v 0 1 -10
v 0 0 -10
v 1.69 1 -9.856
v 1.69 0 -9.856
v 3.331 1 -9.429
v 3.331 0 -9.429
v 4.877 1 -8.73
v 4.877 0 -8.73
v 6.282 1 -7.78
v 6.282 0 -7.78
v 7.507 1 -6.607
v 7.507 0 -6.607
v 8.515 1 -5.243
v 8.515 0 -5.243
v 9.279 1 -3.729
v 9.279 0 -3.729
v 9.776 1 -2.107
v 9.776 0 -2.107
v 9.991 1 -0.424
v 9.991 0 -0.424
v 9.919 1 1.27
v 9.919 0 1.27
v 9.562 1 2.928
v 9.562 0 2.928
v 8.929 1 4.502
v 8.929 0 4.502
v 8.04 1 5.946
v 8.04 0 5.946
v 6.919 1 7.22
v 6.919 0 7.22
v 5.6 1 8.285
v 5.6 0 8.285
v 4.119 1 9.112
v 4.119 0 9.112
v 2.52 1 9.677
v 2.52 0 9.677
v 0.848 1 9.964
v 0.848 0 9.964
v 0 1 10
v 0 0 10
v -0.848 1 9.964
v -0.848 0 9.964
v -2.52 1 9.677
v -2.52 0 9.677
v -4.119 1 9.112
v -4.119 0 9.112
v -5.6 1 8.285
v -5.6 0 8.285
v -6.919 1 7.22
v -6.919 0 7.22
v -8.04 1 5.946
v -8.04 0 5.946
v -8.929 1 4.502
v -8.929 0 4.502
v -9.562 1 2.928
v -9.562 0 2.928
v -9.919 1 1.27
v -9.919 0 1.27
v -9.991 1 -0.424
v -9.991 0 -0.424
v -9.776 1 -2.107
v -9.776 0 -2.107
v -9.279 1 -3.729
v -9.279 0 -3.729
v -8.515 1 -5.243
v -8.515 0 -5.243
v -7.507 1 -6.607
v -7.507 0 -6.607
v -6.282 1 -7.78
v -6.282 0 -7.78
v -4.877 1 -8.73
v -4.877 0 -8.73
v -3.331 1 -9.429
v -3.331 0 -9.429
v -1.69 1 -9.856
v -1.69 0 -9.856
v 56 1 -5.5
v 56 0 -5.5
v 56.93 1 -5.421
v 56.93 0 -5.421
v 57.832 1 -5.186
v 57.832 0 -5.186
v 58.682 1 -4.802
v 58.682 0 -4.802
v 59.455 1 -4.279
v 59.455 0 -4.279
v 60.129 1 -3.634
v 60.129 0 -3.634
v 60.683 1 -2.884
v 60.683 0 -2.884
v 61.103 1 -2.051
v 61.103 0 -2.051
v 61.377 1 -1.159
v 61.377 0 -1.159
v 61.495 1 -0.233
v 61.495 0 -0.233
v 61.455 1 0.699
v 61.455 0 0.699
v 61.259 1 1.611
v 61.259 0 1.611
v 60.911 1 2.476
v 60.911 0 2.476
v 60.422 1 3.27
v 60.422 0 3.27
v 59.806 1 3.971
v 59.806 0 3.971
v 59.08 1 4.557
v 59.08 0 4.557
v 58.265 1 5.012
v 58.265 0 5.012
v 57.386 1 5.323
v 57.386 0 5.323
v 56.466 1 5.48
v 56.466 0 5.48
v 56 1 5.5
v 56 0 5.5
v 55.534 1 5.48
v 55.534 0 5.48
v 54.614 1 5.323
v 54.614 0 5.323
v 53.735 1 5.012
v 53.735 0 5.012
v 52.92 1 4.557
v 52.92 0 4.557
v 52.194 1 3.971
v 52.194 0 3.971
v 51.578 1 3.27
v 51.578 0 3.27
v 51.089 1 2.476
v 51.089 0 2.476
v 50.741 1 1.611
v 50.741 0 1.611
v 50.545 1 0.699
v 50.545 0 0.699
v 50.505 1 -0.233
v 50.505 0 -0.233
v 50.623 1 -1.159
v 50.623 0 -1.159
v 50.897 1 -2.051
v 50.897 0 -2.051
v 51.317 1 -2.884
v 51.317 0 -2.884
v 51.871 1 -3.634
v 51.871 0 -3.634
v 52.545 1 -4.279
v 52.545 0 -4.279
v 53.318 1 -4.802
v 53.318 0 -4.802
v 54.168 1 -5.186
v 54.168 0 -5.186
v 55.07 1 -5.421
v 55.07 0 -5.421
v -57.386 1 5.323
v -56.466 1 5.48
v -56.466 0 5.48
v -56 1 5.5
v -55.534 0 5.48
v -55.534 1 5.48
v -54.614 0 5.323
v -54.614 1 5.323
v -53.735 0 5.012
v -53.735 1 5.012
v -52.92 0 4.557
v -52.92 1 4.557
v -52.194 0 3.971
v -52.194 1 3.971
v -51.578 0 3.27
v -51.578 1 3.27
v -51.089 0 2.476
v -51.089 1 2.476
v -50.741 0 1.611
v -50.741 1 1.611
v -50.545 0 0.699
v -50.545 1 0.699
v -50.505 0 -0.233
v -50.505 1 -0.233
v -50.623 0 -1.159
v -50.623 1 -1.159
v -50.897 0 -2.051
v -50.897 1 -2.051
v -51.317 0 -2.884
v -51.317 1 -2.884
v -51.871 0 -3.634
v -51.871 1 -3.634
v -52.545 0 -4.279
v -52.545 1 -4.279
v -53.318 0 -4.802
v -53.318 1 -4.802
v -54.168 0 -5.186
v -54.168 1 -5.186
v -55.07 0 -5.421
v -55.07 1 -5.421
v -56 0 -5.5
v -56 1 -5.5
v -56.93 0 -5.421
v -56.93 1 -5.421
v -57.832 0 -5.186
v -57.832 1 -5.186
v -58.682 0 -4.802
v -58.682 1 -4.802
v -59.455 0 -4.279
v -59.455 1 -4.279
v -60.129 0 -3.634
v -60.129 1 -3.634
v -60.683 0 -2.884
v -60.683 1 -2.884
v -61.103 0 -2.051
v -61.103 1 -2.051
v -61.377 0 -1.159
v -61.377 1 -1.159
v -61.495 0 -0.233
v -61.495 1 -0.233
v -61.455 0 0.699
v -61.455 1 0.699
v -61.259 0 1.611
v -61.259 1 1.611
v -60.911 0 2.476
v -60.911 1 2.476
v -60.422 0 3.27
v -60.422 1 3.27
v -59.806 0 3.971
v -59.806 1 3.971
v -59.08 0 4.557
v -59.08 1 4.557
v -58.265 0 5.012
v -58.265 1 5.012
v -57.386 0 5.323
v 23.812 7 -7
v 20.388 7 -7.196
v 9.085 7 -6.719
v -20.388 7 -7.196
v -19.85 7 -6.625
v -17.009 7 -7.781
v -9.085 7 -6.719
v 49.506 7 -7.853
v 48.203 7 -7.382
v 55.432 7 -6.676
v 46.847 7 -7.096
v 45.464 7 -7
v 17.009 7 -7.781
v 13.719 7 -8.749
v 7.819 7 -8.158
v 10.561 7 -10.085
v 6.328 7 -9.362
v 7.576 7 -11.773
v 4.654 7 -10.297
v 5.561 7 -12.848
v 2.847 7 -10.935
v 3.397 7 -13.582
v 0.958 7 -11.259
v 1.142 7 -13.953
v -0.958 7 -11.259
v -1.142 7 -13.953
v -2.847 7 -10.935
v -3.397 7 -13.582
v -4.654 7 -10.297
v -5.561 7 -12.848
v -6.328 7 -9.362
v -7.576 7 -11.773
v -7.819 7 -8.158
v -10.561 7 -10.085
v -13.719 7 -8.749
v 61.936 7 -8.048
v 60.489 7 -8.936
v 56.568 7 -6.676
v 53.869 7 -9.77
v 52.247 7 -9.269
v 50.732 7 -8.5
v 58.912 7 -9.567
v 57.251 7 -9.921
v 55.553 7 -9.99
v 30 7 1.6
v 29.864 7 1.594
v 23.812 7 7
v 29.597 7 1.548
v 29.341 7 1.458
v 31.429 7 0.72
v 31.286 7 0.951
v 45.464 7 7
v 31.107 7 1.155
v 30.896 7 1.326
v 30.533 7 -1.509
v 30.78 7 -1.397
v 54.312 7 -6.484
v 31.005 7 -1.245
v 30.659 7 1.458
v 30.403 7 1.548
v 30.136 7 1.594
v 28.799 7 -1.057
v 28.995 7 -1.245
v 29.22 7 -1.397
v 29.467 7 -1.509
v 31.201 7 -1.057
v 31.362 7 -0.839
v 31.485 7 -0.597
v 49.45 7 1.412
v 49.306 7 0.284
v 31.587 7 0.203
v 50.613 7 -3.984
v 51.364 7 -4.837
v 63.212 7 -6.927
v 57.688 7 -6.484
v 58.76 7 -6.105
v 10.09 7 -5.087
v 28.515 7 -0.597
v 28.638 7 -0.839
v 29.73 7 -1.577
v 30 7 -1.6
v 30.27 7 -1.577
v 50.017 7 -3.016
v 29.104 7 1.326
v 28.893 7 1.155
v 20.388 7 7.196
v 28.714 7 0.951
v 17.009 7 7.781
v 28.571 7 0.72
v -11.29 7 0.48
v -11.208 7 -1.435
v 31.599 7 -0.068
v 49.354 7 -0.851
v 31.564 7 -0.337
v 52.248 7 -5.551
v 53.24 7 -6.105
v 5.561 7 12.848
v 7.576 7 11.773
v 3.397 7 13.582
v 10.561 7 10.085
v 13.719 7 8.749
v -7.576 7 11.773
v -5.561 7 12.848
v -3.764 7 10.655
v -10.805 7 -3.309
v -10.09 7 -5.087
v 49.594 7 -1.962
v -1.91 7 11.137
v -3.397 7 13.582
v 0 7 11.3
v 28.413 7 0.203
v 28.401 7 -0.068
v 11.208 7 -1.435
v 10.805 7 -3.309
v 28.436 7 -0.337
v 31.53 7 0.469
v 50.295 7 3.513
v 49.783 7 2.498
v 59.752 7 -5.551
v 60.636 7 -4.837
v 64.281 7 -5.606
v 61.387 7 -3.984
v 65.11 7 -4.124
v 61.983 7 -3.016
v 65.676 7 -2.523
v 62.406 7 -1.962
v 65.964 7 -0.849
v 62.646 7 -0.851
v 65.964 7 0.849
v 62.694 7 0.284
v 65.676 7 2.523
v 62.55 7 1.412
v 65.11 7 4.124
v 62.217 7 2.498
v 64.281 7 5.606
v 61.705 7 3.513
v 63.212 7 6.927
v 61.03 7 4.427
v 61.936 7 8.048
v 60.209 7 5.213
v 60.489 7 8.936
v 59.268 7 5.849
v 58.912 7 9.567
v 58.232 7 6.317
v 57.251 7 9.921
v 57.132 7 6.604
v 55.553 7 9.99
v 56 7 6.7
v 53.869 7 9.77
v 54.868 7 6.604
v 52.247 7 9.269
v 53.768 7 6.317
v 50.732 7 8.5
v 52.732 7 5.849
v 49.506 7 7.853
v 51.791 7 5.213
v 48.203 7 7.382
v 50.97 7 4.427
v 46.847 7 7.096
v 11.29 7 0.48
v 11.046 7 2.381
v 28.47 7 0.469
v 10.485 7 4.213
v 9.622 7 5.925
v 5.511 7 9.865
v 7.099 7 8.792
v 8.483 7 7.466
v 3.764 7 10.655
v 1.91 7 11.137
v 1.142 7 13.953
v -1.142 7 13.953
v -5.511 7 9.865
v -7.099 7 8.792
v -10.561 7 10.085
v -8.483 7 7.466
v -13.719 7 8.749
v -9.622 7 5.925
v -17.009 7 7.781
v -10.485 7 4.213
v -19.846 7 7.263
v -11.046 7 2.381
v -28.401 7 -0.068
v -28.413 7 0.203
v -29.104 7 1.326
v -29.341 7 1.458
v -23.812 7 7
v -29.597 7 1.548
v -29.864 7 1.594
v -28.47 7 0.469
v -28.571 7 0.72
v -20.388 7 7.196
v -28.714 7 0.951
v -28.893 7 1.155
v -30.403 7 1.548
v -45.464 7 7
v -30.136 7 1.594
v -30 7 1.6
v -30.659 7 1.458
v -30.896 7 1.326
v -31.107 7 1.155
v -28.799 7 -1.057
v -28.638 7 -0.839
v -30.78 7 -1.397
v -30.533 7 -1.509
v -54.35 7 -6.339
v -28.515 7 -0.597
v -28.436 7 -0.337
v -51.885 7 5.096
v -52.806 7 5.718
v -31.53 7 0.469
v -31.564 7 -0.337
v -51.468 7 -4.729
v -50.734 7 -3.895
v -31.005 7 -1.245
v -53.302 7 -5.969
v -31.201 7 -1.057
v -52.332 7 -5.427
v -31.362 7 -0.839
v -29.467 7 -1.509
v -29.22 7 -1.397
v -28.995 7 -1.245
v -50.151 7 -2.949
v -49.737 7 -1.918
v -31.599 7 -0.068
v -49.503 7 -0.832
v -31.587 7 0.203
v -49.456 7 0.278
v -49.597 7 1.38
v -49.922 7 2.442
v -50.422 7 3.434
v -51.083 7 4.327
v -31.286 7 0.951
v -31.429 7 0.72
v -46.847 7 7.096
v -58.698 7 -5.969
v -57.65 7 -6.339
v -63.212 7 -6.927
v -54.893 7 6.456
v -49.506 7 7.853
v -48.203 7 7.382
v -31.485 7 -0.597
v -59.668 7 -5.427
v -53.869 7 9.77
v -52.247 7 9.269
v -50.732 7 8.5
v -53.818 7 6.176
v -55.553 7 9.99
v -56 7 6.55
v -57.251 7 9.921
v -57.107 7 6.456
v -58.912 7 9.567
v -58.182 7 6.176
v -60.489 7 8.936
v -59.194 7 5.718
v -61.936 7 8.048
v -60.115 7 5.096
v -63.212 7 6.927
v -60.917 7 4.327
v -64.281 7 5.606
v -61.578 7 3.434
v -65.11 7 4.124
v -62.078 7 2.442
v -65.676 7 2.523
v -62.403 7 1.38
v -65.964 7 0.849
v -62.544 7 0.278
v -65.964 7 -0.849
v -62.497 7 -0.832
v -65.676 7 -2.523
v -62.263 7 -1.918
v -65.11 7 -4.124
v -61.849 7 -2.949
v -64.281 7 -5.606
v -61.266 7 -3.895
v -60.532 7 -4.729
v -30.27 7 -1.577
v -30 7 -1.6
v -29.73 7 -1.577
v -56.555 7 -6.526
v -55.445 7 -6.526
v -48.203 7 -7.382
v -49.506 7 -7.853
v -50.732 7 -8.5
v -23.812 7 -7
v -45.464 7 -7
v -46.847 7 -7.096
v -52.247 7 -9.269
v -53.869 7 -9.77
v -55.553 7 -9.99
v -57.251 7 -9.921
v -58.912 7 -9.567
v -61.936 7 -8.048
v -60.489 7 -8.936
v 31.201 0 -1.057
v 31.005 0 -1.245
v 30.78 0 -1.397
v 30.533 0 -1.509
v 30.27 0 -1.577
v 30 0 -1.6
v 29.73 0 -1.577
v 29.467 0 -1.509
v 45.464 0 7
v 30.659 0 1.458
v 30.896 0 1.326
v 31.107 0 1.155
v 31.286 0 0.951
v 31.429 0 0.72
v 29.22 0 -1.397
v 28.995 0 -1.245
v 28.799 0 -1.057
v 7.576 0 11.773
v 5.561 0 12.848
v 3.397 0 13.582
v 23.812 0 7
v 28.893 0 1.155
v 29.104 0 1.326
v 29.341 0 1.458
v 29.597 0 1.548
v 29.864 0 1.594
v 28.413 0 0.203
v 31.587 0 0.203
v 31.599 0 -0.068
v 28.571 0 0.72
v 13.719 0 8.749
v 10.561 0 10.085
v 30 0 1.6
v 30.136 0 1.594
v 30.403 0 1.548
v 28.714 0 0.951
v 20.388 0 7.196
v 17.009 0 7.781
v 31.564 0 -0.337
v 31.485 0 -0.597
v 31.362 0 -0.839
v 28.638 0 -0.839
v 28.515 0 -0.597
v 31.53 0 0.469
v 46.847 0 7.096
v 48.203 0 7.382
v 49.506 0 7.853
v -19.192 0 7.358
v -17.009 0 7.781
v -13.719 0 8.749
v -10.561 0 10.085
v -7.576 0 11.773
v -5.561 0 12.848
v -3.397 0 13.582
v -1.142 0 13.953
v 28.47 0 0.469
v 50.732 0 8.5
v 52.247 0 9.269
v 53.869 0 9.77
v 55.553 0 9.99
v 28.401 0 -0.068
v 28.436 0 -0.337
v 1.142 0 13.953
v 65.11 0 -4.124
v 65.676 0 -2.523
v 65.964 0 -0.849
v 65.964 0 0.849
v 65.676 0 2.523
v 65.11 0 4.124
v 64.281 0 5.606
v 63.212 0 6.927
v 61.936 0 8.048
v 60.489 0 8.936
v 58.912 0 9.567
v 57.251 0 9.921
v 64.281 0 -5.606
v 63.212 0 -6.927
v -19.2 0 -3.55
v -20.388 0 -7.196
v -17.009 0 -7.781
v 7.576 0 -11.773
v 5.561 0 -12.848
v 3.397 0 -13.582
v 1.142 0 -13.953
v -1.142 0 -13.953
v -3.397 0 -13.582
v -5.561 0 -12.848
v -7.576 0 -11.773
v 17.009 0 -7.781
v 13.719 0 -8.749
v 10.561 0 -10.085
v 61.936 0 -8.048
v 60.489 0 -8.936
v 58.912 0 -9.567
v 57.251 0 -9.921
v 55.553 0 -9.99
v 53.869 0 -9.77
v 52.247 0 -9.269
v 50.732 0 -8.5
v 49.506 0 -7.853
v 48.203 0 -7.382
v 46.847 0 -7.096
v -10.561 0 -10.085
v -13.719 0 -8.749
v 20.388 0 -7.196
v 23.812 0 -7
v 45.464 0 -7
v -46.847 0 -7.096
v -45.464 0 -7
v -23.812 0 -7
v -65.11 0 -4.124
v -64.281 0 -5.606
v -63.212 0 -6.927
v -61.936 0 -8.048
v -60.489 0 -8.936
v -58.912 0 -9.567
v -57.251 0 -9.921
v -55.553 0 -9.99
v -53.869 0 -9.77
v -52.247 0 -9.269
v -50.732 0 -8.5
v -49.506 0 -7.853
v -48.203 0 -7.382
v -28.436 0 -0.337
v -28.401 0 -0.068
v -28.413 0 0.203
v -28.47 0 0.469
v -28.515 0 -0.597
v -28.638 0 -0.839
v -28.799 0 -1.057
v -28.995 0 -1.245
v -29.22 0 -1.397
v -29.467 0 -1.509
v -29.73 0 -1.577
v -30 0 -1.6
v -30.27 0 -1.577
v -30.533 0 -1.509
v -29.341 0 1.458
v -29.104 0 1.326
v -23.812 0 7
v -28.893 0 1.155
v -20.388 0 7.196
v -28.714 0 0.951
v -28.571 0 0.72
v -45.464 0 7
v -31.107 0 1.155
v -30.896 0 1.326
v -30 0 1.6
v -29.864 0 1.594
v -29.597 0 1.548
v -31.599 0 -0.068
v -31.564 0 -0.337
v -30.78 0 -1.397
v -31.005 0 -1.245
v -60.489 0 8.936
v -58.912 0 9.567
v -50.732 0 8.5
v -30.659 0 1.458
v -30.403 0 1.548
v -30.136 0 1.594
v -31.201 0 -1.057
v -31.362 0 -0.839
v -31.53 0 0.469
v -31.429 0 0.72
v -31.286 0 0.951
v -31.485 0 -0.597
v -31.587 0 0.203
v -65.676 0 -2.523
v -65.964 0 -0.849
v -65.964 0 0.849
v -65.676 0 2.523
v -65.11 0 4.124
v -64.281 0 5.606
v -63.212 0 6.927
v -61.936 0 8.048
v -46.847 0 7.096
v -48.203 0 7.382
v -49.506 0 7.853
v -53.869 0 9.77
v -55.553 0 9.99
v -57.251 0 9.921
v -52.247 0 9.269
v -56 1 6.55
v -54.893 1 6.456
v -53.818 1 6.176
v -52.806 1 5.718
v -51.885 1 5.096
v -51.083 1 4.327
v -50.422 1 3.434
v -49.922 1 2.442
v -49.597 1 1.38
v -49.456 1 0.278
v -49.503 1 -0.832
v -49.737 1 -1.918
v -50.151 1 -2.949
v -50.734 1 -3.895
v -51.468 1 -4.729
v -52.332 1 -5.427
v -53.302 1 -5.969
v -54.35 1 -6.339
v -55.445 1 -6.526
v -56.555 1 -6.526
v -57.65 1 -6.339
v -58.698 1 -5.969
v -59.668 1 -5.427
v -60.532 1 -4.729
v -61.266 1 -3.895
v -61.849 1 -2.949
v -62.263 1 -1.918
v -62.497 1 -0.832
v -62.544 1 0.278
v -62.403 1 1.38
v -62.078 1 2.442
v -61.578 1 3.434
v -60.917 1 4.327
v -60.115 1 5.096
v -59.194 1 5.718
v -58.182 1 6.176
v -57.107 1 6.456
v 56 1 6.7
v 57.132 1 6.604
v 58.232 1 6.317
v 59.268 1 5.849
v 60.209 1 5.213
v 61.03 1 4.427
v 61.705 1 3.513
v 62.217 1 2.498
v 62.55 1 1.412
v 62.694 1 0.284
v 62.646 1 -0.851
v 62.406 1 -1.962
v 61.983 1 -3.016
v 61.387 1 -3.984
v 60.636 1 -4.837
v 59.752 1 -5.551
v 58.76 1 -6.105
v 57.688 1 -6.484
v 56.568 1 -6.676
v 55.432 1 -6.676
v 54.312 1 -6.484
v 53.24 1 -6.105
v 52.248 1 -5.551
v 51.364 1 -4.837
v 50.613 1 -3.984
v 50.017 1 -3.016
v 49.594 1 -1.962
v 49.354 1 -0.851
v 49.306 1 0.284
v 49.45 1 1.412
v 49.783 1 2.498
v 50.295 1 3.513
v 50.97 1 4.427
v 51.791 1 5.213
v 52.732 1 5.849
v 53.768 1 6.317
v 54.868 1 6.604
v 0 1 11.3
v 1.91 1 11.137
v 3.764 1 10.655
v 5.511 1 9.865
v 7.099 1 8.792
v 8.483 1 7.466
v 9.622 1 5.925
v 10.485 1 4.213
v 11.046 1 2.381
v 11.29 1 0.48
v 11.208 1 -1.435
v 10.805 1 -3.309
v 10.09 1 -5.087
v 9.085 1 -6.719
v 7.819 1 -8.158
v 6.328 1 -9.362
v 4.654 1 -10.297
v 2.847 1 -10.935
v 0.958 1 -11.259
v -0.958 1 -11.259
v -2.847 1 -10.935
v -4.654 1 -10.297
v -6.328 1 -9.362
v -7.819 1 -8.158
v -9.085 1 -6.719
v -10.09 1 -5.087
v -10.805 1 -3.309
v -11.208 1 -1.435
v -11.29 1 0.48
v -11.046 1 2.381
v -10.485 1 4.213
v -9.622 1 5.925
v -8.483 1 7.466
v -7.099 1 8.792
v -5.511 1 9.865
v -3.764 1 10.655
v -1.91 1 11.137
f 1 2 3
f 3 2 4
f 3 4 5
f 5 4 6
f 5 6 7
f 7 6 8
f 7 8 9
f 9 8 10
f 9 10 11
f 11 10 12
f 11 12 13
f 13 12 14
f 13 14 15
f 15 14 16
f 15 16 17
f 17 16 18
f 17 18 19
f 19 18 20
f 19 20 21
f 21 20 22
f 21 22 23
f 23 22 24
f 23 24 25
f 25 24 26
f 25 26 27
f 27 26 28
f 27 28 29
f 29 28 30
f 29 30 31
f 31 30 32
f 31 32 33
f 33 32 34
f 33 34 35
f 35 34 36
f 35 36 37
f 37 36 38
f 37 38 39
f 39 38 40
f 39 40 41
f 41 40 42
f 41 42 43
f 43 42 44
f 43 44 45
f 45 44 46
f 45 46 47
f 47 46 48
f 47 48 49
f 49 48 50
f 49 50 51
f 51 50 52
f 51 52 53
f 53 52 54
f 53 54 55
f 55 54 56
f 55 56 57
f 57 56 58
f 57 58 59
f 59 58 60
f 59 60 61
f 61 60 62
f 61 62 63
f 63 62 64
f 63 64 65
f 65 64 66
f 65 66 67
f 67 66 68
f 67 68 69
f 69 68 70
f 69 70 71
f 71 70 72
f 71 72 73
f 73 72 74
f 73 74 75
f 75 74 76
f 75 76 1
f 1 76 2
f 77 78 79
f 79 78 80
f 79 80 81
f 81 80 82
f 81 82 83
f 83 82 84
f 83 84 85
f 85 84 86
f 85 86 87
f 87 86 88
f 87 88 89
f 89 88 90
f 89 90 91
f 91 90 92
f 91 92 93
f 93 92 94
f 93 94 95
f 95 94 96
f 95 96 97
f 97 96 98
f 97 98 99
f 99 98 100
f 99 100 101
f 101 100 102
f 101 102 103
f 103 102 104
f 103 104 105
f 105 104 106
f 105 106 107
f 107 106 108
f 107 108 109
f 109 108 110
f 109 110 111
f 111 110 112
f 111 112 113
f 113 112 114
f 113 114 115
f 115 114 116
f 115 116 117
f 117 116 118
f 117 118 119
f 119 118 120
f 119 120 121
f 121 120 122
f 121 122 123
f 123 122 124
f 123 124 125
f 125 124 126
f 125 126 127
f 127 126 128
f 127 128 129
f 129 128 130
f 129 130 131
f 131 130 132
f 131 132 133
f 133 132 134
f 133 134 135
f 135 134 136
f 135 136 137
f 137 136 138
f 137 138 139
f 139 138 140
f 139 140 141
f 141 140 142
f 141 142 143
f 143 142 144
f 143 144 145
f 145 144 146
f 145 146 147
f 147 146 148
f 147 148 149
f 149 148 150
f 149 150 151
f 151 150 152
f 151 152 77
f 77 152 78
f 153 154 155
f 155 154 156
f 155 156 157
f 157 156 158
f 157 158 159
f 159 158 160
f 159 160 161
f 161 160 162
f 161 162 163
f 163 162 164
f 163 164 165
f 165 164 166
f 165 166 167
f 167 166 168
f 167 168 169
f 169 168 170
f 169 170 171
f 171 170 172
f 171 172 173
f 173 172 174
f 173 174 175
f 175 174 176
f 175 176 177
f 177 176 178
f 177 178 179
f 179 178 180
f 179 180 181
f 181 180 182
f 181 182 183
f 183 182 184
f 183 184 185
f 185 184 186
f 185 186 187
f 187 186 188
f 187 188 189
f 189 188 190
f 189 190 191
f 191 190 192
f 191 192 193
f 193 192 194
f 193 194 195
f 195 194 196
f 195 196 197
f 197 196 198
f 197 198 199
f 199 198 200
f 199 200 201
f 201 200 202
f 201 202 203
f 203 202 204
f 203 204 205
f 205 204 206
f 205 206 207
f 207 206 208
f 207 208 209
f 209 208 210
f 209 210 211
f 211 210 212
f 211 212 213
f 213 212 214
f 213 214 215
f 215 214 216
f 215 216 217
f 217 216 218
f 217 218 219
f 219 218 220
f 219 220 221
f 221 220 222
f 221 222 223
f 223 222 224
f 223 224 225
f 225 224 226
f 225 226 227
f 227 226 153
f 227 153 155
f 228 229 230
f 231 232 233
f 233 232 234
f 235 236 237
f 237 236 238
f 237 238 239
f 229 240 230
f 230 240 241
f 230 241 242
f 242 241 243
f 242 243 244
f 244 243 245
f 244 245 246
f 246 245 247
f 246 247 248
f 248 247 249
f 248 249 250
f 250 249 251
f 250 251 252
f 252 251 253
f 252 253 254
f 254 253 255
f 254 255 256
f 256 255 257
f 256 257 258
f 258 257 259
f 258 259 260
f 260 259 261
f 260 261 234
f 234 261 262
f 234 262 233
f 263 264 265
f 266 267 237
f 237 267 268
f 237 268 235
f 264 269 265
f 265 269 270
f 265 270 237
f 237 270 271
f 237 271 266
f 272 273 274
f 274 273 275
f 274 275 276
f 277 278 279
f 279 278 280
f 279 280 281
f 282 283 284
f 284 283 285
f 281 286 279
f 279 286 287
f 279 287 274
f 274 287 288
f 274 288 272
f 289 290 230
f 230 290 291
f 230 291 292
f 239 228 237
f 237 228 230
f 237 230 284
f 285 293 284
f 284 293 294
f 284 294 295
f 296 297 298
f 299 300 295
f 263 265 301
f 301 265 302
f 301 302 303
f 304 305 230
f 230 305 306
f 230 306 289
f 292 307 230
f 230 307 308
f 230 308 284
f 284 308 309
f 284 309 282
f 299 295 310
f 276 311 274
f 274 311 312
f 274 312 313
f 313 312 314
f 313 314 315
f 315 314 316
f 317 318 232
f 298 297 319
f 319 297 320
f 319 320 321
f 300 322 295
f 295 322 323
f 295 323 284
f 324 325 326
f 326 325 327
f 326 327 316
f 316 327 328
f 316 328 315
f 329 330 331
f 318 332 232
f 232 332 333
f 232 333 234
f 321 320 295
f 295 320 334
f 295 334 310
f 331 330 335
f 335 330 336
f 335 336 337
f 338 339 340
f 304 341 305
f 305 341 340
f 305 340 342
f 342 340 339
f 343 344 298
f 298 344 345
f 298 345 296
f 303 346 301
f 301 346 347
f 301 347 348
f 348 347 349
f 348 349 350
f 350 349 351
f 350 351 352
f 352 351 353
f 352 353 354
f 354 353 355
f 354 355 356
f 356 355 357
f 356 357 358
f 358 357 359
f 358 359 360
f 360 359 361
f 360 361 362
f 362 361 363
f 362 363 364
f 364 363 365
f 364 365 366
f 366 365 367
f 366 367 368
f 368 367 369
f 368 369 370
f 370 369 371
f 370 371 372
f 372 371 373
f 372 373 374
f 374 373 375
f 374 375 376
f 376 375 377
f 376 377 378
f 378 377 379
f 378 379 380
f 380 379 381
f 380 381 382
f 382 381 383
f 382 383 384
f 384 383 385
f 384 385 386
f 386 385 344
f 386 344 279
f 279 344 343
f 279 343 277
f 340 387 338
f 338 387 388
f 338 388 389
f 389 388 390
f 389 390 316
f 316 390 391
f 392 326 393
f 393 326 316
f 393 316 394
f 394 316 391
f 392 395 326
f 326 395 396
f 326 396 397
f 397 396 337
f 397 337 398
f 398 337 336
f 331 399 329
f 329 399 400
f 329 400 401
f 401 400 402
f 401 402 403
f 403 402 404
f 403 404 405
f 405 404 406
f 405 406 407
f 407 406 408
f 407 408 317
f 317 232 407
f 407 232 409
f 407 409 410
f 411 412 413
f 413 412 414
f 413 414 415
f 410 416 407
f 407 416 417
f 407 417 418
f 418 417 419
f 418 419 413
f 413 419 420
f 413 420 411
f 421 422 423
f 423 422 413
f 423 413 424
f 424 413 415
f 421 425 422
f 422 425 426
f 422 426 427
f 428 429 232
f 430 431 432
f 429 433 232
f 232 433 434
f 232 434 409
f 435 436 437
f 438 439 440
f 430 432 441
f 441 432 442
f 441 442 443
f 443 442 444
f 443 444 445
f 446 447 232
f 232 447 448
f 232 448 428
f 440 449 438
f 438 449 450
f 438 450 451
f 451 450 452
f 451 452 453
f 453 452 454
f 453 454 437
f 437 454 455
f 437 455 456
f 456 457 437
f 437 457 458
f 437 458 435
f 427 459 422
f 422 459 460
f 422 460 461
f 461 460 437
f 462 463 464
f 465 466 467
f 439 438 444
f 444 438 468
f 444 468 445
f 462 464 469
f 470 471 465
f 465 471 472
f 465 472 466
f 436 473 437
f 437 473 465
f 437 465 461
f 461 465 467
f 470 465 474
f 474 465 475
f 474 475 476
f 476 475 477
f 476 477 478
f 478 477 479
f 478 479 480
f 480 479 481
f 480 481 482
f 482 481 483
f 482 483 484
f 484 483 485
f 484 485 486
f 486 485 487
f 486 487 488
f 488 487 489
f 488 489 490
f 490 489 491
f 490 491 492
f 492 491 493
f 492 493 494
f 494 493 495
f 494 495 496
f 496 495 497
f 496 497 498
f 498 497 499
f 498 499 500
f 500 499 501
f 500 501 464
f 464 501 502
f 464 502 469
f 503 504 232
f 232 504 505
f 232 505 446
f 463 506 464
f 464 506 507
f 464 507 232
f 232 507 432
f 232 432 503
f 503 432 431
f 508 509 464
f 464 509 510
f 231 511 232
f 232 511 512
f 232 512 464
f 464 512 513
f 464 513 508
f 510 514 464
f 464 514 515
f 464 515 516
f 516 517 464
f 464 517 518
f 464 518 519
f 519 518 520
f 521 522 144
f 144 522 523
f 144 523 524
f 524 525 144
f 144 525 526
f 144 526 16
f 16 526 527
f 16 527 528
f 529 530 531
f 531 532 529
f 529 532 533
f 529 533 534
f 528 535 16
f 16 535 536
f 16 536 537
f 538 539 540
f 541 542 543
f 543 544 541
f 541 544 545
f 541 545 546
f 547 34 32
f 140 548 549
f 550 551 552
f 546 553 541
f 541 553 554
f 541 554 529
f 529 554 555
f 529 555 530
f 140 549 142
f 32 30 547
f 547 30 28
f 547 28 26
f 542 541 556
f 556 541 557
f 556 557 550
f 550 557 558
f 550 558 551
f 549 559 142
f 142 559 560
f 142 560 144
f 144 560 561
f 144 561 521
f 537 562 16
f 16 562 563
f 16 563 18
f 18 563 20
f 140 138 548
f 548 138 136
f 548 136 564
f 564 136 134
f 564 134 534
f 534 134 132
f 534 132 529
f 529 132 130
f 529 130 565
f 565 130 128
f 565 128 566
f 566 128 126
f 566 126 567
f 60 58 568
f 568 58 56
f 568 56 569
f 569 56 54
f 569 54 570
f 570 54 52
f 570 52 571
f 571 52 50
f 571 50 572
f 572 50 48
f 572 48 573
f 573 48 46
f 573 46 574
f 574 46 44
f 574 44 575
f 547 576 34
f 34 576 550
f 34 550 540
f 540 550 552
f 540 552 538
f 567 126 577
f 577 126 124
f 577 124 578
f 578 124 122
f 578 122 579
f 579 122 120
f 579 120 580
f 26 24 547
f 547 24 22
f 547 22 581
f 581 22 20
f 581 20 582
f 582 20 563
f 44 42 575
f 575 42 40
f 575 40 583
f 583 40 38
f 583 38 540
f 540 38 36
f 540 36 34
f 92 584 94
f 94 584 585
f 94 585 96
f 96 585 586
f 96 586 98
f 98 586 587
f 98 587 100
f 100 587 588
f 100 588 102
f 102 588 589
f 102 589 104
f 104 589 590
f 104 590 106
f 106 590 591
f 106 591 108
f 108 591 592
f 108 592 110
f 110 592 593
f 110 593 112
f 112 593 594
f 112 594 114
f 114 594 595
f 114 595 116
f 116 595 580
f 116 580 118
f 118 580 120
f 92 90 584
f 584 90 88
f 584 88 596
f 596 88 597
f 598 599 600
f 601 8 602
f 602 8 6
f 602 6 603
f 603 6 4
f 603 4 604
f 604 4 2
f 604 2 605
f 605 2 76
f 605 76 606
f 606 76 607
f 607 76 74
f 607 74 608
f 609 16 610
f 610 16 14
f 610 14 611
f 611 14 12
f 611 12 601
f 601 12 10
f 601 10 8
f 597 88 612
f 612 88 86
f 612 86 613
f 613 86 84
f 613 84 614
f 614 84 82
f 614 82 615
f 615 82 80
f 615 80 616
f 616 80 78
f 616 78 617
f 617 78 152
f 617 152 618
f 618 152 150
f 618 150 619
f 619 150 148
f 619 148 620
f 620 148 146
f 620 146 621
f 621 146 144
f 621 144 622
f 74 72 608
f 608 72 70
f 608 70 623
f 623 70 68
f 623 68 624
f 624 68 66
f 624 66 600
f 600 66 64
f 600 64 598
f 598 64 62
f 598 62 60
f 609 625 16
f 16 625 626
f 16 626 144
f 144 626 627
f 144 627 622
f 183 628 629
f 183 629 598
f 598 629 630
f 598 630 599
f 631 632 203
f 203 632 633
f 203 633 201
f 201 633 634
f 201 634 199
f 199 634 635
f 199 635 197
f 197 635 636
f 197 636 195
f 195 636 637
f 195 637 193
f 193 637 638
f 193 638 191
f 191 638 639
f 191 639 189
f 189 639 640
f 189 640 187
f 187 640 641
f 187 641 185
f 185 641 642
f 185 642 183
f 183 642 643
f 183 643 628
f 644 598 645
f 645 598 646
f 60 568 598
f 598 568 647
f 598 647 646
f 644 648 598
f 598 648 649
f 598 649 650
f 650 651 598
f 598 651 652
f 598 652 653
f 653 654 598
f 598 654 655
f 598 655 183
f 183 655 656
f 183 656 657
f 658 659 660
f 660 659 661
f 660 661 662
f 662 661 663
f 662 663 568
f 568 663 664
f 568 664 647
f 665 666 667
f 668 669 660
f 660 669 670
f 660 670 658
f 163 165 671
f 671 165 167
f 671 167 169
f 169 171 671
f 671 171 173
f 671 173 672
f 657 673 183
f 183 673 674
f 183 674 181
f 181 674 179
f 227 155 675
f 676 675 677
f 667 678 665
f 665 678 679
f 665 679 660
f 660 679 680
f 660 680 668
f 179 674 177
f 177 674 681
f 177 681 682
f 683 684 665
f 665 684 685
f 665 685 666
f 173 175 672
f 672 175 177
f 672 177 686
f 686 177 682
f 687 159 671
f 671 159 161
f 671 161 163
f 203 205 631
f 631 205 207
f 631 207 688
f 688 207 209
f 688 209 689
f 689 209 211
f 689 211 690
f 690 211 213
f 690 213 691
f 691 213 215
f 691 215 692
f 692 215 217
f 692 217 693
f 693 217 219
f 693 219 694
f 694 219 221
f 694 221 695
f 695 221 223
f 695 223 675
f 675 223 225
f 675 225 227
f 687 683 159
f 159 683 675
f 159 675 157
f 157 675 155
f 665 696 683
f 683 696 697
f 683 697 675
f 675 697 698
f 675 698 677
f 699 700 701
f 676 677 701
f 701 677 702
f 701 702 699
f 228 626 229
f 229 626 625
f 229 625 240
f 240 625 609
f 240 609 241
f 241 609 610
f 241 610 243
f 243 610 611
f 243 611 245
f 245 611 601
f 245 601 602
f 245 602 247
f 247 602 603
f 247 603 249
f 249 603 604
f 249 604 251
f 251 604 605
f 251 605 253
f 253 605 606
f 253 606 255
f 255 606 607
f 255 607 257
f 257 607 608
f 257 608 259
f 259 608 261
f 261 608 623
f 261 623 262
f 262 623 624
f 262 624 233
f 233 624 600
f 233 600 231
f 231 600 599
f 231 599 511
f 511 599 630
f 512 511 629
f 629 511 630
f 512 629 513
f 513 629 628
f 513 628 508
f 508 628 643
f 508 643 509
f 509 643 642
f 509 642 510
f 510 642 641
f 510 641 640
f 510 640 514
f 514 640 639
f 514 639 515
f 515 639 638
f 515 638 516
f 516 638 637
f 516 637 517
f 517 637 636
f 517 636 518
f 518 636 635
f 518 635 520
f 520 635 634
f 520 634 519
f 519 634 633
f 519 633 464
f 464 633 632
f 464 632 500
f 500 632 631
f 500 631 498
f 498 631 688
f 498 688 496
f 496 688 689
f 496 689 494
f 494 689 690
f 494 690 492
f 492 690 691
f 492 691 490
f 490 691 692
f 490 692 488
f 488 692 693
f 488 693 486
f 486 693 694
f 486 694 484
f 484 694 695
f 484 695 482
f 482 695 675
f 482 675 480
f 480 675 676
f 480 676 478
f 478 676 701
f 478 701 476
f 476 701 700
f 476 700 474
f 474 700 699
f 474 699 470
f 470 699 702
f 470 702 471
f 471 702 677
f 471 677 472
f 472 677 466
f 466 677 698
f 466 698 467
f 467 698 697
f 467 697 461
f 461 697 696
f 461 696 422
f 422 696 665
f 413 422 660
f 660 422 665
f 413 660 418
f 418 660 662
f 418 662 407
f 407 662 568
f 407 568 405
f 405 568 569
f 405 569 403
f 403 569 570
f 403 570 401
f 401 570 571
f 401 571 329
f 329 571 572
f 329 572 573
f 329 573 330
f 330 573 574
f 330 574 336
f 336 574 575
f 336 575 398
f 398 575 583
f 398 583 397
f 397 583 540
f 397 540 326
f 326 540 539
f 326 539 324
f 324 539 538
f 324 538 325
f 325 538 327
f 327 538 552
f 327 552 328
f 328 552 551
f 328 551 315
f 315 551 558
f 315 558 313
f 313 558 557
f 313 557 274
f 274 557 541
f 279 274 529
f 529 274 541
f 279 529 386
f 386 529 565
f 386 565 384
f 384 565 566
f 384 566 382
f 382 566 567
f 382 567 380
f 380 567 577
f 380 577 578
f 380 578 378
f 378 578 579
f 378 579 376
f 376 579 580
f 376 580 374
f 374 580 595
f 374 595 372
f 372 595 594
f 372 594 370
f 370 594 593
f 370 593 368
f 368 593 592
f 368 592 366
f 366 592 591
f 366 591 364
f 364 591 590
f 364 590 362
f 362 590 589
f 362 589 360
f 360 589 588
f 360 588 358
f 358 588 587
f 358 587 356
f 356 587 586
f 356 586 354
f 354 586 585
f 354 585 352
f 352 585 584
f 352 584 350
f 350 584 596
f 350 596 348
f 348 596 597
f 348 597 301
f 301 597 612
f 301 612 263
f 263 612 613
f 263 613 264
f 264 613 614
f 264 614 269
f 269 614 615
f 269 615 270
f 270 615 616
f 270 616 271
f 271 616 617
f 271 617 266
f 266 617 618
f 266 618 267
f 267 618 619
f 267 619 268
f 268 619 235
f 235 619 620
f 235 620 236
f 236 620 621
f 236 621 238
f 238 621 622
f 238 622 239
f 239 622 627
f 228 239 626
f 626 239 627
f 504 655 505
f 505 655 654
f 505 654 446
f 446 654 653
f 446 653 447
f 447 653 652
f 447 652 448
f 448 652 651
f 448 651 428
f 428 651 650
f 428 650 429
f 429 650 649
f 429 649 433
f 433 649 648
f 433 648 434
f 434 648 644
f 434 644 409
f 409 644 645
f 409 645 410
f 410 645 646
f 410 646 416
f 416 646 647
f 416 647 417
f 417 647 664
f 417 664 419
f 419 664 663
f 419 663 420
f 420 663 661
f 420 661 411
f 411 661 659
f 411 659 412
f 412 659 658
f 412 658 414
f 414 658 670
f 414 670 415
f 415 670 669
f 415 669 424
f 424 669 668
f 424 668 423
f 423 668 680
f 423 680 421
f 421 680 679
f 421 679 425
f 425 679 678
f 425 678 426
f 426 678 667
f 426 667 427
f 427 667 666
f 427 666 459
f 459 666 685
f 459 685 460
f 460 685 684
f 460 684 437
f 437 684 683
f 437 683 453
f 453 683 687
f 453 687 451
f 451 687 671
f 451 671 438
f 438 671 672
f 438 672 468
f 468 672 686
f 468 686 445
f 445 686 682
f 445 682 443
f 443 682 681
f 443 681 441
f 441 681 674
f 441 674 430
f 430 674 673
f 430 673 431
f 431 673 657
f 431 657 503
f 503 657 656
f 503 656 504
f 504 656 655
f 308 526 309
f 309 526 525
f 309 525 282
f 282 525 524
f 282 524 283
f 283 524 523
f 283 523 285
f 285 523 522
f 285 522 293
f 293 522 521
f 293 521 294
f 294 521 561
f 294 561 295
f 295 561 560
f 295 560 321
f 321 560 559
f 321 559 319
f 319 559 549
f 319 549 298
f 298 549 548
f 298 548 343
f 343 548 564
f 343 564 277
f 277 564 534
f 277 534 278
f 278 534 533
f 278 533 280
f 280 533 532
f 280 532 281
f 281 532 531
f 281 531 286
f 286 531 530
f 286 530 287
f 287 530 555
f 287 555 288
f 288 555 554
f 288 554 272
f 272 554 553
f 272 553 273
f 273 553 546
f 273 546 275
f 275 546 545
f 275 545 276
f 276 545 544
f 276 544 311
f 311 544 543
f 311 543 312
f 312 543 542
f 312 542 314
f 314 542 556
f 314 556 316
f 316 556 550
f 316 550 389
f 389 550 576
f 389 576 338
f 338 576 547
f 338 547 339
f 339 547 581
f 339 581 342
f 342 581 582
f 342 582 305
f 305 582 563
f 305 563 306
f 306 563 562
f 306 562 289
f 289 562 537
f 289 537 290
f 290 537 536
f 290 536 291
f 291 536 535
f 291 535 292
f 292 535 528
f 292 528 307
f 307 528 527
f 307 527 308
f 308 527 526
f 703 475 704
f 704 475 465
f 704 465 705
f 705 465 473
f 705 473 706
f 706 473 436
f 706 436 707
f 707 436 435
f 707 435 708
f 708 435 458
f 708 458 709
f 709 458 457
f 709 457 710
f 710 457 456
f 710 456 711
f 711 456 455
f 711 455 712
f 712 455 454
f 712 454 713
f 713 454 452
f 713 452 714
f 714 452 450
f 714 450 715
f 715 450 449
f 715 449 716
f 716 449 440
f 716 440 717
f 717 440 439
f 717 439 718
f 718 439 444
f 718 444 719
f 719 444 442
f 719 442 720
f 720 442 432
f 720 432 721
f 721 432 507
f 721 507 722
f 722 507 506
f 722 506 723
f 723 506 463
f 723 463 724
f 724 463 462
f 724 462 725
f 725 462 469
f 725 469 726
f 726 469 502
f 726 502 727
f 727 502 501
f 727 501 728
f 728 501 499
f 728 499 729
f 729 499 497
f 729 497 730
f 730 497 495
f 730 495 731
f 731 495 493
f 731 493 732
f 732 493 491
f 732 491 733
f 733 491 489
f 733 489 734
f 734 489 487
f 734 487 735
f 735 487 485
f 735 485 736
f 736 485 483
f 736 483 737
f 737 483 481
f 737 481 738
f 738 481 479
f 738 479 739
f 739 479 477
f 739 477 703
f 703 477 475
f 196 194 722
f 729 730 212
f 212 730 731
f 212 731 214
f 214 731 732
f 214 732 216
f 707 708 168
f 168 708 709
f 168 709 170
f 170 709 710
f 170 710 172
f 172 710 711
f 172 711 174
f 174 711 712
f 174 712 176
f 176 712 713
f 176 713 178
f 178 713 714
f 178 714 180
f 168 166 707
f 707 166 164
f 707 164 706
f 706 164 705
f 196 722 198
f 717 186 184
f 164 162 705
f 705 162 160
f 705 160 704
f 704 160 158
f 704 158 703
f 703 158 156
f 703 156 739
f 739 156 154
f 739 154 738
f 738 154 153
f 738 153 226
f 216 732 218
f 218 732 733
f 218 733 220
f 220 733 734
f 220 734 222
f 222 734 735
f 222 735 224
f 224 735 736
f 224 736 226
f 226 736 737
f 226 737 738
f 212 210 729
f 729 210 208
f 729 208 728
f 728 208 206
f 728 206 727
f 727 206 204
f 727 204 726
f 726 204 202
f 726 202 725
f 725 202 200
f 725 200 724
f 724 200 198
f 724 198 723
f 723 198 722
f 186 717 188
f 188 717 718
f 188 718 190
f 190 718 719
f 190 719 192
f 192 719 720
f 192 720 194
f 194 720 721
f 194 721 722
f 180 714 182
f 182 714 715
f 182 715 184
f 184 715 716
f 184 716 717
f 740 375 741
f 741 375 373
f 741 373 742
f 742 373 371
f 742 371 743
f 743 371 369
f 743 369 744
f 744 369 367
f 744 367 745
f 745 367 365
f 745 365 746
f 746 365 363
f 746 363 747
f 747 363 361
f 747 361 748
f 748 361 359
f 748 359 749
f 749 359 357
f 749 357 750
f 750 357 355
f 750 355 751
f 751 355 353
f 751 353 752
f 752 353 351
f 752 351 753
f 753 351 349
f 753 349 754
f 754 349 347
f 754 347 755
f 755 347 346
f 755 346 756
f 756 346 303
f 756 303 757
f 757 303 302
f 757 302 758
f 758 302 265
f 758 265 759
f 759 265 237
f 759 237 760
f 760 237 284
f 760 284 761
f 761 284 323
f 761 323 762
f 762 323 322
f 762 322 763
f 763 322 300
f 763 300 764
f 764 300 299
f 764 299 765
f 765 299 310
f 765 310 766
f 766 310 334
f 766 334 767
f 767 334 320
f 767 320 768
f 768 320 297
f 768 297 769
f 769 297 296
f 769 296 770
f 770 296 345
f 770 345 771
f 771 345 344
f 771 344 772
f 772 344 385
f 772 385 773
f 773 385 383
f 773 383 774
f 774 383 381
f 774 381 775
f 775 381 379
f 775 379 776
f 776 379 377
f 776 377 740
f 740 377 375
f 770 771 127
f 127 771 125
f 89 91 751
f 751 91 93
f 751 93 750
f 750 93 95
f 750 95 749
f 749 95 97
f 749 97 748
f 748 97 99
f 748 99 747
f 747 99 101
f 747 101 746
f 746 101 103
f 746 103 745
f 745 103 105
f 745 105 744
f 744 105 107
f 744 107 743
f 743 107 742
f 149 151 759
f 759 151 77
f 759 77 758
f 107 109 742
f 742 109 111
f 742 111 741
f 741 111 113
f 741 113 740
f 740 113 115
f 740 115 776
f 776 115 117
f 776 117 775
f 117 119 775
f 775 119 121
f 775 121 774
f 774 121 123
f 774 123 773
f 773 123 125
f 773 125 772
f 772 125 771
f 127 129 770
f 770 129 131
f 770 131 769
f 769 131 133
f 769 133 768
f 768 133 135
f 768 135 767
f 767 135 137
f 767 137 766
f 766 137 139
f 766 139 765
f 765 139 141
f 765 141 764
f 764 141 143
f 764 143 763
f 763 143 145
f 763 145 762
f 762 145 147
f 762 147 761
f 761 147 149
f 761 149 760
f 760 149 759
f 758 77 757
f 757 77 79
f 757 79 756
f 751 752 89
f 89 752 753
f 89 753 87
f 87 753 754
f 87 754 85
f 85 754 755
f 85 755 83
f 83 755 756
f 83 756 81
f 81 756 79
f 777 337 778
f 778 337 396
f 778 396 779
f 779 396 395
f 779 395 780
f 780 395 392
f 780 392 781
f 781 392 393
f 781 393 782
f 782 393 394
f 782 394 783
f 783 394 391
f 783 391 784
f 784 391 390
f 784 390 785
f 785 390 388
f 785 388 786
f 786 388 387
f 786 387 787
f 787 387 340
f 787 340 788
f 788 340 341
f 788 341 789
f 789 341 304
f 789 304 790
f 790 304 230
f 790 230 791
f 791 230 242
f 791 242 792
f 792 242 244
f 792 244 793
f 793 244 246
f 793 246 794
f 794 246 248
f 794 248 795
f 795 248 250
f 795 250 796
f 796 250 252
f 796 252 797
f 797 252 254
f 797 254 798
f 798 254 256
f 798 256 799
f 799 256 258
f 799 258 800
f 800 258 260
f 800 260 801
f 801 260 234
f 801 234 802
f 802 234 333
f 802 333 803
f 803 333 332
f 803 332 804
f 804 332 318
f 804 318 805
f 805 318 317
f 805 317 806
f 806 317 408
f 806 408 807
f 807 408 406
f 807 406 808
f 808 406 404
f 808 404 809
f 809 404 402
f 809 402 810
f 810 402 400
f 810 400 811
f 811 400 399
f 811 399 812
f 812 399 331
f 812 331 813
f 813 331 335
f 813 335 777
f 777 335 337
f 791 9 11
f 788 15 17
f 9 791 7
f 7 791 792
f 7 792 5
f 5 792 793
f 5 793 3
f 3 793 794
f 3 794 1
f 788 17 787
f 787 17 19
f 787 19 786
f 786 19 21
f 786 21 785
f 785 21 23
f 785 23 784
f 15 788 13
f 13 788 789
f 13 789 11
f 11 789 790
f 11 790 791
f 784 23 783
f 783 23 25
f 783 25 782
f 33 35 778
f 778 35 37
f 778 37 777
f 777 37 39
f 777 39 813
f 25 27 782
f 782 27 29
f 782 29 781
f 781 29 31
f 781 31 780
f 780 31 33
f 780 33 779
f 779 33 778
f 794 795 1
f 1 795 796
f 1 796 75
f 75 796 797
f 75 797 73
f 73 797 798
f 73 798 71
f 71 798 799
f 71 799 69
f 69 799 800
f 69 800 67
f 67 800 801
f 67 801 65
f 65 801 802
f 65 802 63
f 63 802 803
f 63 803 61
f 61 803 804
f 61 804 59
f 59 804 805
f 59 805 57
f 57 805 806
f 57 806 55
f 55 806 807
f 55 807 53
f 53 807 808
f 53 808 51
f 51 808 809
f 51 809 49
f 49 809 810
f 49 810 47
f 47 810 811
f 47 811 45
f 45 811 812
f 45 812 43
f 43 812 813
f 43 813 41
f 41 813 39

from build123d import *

# Parameters (mm, degrees)
SKETCH_1_R          = 10
SKETCH_1_R_2        = 5.5
SKETCH_1_R_3        = 1.6
EXTRUDE_1_DEPTH     = 7
SKETCH_3_R          = 6.55
SKETCH_3_R_2        = 6.7
CUT_EXTRUDE_1_DEPTH = 6
SKETCH_4_R          = 11.3
CUT_EXTRUDE_2_DEPTH = 6


with BuildPart() as part:
    # Эскиз1 → Бобышка-Вытянуть1 (new body)
    with BuildSketch(Plane(origin=(0, 0, 0), x_dir=(1, 0, 0), z_dir=(0, 1, 0))):
        with BuildLine():
            Line((-23.8117618, 7), (-45.464346247, 7))
            ThreePointArc((-45.464346247, 7), (-48.202959035, 7.382307969), (-50.732173124, 8.5))
            ThreePointArc((-50.732173124, 8.5), (-66, 0), (-50.732173124, -8.5))
            ThreePointArc((-50.732173124, -8.5), (-48.202959035, -7.382307969), (-45.464346247, -7))
            Line((-45.464346247, -7), (-23.8117618, -7))
            ThreePointArc((-23.8117618, -7), (-15.350620677, -8.217903292), (-7.576469664, -11.772727273))
            ThreePointArc((-7.576469664, -11.772727273), (0, -14), (7.576469664, -11.772727273))
            ThreePointArc((7.576469664, -11.772727273), (15.350620677, -8.217903292), (23.8117618, -7))
            Line((23.8117618, -7), (45.464346247, -7))
            ThreePointArc((45.464346247, -7), (48.202959035, -7.382307969), (50.732173124, -8.5))
            ThreePointArc((50.732173124, -8.5), (66, 0), (50.732173124, 8.5))
            ThreePointArc((50.732173124, 8.5), (48.202959035, 7.382307969), (45.464346247, 7))
            Line((45.464346247, 7), (23.8117618, 7))
            ThreePointArc((23.8117618, 7), (15.350620677, 8.217903292), (7.576469664, 11.772727273))
            ThreePointArc((7.576469664, 11.772727273), (0, 14), (-7.576469664, 11.772727273))
            ThreePointArc((-7.576469664, 11.772727273), (-15.350620677, 8.217903292), (-23.8117618, 7))
        make_face()
        with Locations(Location((0, 0, 0), (0, 0, 270))):
            Circle(SKETCH_1_R, mode=Mode.SUBTRACT)
        with Locations(Location((56, 0, 0), (0, 0, 270))):
            Circle(SKETCH_1_R_2, mode=Mode.SUBTRACT)
        with Locations(Location((-56, 0, 0), (0, 0, 90))):
            Circle(SKETCH_1_R_2, mode=Mode.SUBTRACT)
        with Locations(Location((-30, 0, 0), (0, 0, 270))):
            Circle(SKETCH_1_R_3, mode=Mode.SUBTRACT)
        with Locations(Location((30, 0, 0), (0, 0, 270))):
            Circle(SKETCH_1_R_3, mode=Mode.SUBTRACT)
    extrude(amount=EXTRUDE_1_DEPTH)

    # Эскиз3 → Вырез-Вытянуть1 (cut)
    with BuildSketch(Plane(origin=(0, 7, 0), x_dir=(1, 0, 0), z_dir=(0, 1, 0))):
        with Locations(Location((-56, 0, 0), (0, 0, 270))):
            Circle(SKETCH_3_R)
        with Locations(Location((56, 0, 0), (0, 0, 270))):
            Circle(SKETCH_3_R_2)
    extrude(amount=-CUT_EXTRUDE_1_DEPTH, mode=Mode.SUBTRACT)

    # Эскиз4 → Вырез-Вытянуть2 (cut)
    with BuildSketch(Plane(origin=(0, 7, 0), x_dir=(1, 0, 0), z_dir=(0, 1, 0))):
        with Locations(Location((0, 0, 0), (0, 0, 270))):
            Circle(SKETCH_4_R)
    extrude(amount=-CUT_EXTRUDE_2_DEPTH, mode=Mode.SUBTRACT)


solid = part.part
